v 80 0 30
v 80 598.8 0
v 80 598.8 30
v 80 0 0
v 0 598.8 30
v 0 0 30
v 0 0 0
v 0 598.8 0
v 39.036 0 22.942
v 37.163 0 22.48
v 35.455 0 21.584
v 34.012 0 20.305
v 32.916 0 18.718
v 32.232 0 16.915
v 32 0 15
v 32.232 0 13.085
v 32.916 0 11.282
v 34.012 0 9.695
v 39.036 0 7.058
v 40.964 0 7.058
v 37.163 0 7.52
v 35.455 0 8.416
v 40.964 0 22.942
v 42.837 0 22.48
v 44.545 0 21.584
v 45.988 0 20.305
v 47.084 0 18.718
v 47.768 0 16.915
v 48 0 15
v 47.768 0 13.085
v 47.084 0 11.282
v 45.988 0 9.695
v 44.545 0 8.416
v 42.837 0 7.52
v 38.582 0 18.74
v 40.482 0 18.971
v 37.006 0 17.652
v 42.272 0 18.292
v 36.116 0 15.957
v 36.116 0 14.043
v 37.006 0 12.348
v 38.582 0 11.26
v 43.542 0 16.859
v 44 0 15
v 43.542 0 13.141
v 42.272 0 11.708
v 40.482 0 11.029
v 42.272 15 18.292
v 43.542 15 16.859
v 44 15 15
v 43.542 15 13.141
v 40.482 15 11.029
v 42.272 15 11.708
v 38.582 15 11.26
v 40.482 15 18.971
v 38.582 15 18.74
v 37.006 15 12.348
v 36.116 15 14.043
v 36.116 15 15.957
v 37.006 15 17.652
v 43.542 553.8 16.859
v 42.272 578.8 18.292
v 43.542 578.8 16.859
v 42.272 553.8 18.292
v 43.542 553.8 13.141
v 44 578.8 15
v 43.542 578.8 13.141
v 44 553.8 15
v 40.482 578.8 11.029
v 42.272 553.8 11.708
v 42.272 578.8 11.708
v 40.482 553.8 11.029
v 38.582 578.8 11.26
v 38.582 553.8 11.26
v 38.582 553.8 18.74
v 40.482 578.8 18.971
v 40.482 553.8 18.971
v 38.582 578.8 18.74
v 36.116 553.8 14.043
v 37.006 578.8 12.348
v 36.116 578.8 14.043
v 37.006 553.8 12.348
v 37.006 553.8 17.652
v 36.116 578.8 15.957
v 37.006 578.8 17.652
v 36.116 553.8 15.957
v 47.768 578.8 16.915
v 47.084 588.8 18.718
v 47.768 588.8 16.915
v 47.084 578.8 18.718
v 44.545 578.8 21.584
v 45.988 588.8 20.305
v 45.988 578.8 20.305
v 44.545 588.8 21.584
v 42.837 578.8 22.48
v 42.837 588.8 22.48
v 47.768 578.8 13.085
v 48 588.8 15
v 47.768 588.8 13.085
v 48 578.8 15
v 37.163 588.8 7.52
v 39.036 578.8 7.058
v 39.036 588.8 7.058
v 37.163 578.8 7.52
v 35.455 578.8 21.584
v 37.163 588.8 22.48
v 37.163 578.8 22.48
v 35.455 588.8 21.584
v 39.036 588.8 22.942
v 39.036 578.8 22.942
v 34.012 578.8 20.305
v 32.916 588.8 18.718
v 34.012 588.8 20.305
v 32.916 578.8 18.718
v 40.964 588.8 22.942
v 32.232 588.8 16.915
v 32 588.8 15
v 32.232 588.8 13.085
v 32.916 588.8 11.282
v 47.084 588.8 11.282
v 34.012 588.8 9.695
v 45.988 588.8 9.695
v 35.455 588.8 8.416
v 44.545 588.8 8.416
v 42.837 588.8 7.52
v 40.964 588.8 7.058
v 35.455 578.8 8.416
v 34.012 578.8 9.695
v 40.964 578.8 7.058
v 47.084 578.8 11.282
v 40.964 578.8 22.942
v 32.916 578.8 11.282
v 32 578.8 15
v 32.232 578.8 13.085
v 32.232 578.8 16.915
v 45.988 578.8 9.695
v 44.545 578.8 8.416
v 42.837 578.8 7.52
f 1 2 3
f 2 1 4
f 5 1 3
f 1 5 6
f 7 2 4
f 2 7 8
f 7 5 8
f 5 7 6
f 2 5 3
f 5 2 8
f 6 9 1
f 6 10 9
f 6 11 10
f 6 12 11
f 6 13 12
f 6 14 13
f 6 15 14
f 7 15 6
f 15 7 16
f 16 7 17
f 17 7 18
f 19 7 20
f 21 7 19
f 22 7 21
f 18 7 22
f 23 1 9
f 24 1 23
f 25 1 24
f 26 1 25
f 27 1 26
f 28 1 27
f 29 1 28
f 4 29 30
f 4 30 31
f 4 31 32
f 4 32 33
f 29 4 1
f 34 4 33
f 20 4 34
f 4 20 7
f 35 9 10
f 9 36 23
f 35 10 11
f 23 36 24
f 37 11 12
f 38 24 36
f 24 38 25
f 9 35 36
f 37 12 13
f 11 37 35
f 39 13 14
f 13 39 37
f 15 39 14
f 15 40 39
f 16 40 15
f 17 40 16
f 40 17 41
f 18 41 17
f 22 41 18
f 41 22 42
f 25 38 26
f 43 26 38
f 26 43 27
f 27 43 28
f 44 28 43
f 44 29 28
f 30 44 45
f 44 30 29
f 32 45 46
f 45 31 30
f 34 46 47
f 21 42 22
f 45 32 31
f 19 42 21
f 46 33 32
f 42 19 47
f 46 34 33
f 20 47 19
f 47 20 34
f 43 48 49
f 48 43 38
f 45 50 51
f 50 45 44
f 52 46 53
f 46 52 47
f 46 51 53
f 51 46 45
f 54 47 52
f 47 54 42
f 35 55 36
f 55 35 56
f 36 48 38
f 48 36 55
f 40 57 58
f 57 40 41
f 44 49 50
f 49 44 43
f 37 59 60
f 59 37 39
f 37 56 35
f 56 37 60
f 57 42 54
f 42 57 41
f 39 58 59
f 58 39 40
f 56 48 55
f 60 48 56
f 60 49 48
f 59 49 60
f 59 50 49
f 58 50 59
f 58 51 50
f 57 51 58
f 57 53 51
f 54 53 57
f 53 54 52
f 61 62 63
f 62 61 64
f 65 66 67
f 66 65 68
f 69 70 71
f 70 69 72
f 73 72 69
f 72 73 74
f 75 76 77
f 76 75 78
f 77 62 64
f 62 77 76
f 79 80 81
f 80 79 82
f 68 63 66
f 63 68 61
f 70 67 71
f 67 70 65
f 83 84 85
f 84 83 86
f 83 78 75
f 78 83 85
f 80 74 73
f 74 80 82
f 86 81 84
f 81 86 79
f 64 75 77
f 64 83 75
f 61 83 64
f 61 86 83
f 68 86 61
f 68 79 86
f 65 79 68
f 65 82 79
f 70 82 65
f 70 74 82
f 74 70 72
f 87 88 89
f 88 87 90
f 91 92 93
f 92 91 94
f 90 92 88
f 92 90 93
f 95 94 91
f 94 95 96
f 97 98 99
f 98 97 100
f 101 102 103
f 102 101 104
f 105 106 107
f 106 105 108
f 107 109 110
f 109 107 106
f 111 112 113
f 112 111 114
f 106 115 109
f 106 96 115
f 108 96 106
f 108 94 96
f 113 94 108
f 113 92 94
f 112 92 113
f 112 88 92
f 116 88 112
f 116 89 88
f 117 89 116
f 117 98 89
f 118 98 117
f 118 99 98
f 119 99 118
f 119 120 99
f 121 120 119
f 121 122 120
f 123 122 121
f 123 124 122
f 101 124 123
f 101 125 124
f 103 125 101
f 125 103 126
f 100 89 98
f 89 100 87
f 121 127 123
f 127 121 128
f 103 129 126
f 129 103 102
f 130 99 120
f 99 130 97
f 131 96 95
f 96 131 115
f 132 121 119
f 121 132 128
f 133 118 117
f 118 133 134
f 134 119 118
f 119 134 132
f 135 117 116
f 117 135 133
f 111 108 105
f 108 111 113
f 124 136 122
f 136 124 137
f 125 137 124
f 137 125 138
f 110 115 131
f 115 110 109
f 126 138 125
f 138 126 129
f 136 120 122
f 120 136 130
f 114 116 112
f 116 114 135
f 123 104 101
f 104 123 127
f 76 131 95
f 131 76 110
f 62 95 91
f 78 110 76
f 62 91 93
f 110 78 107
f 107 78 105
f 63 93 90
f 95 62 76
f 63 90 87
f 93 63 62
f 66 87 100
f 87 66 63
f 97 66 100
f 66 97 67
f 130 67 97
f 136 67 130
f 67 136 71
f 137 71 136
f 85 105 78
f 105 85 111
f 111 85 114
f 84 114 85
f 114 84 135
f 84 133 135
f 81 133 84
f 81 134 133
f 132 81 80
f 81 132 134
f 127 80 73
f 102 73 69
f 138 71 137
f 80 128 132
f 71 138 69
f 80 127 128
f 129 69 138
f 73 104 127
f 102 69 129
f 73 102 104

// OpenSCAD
// file: dimensions.scad
// Shared dimensions for SV08 Max Table Components
// Include this file in all component SCAD files

// Convert inches to mm
inch = 25.4;

// Table dimensions
table_width = 802;  // mm
table_depth = 802;  // mm
table_height = 463; // mm (desk height - printer bed at ~30" from floor)

// Component dimensions
leg_size = 4 * inch;          // 4x4 inch legs (101.6mm)
rail_thickness = 30;          // mm (printable thickness)
rail_width = 80;              // mm (printable width)
top_thickness = 25;           // mm

// Connection system dimensions
bolt_hole_diameter = 8;       // M8 bolts
counterbore_diameter = 16;    // For bolt heads
counterbore_depth = 10;       // mm

// Rail heights
bottom_rail_height = 200;     // mm
mid_rail_height = 250;        // mm
top_rail_height = table_height - top_thickness - rail_width; // Calculated

// Calculated rail lengths
long_rail_length = table_width - 2 * leg_size;   // 599mm
short_rail_length = table_depth - 2 * leg_size;  // 599mm

// Table top segment dimensions
segment_width = 150;          // mm
segment_depth = table_depth;  // 802mm
final_segment_width = 52;     // mm (to complete 802mm total width)

// Alignment pin dimensions
pin_diameter = 7.8;           // mm (slightly undersized for press fit)
pin_length = 15;              // mm
pin_hole_diameter = 8;        // mm
// main file
// SV08 Max Table Short Rail Component (Y direction)
include <dimensions.scad>

module short_rail() {
    difference() {
        cube([rail_width, short_rail_length, rail_thickness]);

        // Bolt holes at ends
        translate([rail_width/2, 15, rail_thickness/2])
            rotate([90, 0, 0])
            cylinder(d=bolt_hole_diameter, h=rail_thickness);

        translate([rail_width/2, short_rail_length - 15, rail_thickness/2])
            rotate([90, 0, 0])
            cylinder(d=bolt_hole_diameter, h=rail_thickness);

        // Counterbores for bolt heads
        translate([rail_width/2, 0, rail_thickness/2])
            rotate([90, 0, 0])
            cylinder(d=counterbore_diameter, h=counterbore_depth);

        translate([rail_width/2, short_rail_length - counterbore_depth, rail_thickness/2])
            rotate([90, 0, 0])
            cylinder(d=counterbore_diameter, h=counterbore_depth);
    }
}

// Generate single short rail for STL export
short_rail();
